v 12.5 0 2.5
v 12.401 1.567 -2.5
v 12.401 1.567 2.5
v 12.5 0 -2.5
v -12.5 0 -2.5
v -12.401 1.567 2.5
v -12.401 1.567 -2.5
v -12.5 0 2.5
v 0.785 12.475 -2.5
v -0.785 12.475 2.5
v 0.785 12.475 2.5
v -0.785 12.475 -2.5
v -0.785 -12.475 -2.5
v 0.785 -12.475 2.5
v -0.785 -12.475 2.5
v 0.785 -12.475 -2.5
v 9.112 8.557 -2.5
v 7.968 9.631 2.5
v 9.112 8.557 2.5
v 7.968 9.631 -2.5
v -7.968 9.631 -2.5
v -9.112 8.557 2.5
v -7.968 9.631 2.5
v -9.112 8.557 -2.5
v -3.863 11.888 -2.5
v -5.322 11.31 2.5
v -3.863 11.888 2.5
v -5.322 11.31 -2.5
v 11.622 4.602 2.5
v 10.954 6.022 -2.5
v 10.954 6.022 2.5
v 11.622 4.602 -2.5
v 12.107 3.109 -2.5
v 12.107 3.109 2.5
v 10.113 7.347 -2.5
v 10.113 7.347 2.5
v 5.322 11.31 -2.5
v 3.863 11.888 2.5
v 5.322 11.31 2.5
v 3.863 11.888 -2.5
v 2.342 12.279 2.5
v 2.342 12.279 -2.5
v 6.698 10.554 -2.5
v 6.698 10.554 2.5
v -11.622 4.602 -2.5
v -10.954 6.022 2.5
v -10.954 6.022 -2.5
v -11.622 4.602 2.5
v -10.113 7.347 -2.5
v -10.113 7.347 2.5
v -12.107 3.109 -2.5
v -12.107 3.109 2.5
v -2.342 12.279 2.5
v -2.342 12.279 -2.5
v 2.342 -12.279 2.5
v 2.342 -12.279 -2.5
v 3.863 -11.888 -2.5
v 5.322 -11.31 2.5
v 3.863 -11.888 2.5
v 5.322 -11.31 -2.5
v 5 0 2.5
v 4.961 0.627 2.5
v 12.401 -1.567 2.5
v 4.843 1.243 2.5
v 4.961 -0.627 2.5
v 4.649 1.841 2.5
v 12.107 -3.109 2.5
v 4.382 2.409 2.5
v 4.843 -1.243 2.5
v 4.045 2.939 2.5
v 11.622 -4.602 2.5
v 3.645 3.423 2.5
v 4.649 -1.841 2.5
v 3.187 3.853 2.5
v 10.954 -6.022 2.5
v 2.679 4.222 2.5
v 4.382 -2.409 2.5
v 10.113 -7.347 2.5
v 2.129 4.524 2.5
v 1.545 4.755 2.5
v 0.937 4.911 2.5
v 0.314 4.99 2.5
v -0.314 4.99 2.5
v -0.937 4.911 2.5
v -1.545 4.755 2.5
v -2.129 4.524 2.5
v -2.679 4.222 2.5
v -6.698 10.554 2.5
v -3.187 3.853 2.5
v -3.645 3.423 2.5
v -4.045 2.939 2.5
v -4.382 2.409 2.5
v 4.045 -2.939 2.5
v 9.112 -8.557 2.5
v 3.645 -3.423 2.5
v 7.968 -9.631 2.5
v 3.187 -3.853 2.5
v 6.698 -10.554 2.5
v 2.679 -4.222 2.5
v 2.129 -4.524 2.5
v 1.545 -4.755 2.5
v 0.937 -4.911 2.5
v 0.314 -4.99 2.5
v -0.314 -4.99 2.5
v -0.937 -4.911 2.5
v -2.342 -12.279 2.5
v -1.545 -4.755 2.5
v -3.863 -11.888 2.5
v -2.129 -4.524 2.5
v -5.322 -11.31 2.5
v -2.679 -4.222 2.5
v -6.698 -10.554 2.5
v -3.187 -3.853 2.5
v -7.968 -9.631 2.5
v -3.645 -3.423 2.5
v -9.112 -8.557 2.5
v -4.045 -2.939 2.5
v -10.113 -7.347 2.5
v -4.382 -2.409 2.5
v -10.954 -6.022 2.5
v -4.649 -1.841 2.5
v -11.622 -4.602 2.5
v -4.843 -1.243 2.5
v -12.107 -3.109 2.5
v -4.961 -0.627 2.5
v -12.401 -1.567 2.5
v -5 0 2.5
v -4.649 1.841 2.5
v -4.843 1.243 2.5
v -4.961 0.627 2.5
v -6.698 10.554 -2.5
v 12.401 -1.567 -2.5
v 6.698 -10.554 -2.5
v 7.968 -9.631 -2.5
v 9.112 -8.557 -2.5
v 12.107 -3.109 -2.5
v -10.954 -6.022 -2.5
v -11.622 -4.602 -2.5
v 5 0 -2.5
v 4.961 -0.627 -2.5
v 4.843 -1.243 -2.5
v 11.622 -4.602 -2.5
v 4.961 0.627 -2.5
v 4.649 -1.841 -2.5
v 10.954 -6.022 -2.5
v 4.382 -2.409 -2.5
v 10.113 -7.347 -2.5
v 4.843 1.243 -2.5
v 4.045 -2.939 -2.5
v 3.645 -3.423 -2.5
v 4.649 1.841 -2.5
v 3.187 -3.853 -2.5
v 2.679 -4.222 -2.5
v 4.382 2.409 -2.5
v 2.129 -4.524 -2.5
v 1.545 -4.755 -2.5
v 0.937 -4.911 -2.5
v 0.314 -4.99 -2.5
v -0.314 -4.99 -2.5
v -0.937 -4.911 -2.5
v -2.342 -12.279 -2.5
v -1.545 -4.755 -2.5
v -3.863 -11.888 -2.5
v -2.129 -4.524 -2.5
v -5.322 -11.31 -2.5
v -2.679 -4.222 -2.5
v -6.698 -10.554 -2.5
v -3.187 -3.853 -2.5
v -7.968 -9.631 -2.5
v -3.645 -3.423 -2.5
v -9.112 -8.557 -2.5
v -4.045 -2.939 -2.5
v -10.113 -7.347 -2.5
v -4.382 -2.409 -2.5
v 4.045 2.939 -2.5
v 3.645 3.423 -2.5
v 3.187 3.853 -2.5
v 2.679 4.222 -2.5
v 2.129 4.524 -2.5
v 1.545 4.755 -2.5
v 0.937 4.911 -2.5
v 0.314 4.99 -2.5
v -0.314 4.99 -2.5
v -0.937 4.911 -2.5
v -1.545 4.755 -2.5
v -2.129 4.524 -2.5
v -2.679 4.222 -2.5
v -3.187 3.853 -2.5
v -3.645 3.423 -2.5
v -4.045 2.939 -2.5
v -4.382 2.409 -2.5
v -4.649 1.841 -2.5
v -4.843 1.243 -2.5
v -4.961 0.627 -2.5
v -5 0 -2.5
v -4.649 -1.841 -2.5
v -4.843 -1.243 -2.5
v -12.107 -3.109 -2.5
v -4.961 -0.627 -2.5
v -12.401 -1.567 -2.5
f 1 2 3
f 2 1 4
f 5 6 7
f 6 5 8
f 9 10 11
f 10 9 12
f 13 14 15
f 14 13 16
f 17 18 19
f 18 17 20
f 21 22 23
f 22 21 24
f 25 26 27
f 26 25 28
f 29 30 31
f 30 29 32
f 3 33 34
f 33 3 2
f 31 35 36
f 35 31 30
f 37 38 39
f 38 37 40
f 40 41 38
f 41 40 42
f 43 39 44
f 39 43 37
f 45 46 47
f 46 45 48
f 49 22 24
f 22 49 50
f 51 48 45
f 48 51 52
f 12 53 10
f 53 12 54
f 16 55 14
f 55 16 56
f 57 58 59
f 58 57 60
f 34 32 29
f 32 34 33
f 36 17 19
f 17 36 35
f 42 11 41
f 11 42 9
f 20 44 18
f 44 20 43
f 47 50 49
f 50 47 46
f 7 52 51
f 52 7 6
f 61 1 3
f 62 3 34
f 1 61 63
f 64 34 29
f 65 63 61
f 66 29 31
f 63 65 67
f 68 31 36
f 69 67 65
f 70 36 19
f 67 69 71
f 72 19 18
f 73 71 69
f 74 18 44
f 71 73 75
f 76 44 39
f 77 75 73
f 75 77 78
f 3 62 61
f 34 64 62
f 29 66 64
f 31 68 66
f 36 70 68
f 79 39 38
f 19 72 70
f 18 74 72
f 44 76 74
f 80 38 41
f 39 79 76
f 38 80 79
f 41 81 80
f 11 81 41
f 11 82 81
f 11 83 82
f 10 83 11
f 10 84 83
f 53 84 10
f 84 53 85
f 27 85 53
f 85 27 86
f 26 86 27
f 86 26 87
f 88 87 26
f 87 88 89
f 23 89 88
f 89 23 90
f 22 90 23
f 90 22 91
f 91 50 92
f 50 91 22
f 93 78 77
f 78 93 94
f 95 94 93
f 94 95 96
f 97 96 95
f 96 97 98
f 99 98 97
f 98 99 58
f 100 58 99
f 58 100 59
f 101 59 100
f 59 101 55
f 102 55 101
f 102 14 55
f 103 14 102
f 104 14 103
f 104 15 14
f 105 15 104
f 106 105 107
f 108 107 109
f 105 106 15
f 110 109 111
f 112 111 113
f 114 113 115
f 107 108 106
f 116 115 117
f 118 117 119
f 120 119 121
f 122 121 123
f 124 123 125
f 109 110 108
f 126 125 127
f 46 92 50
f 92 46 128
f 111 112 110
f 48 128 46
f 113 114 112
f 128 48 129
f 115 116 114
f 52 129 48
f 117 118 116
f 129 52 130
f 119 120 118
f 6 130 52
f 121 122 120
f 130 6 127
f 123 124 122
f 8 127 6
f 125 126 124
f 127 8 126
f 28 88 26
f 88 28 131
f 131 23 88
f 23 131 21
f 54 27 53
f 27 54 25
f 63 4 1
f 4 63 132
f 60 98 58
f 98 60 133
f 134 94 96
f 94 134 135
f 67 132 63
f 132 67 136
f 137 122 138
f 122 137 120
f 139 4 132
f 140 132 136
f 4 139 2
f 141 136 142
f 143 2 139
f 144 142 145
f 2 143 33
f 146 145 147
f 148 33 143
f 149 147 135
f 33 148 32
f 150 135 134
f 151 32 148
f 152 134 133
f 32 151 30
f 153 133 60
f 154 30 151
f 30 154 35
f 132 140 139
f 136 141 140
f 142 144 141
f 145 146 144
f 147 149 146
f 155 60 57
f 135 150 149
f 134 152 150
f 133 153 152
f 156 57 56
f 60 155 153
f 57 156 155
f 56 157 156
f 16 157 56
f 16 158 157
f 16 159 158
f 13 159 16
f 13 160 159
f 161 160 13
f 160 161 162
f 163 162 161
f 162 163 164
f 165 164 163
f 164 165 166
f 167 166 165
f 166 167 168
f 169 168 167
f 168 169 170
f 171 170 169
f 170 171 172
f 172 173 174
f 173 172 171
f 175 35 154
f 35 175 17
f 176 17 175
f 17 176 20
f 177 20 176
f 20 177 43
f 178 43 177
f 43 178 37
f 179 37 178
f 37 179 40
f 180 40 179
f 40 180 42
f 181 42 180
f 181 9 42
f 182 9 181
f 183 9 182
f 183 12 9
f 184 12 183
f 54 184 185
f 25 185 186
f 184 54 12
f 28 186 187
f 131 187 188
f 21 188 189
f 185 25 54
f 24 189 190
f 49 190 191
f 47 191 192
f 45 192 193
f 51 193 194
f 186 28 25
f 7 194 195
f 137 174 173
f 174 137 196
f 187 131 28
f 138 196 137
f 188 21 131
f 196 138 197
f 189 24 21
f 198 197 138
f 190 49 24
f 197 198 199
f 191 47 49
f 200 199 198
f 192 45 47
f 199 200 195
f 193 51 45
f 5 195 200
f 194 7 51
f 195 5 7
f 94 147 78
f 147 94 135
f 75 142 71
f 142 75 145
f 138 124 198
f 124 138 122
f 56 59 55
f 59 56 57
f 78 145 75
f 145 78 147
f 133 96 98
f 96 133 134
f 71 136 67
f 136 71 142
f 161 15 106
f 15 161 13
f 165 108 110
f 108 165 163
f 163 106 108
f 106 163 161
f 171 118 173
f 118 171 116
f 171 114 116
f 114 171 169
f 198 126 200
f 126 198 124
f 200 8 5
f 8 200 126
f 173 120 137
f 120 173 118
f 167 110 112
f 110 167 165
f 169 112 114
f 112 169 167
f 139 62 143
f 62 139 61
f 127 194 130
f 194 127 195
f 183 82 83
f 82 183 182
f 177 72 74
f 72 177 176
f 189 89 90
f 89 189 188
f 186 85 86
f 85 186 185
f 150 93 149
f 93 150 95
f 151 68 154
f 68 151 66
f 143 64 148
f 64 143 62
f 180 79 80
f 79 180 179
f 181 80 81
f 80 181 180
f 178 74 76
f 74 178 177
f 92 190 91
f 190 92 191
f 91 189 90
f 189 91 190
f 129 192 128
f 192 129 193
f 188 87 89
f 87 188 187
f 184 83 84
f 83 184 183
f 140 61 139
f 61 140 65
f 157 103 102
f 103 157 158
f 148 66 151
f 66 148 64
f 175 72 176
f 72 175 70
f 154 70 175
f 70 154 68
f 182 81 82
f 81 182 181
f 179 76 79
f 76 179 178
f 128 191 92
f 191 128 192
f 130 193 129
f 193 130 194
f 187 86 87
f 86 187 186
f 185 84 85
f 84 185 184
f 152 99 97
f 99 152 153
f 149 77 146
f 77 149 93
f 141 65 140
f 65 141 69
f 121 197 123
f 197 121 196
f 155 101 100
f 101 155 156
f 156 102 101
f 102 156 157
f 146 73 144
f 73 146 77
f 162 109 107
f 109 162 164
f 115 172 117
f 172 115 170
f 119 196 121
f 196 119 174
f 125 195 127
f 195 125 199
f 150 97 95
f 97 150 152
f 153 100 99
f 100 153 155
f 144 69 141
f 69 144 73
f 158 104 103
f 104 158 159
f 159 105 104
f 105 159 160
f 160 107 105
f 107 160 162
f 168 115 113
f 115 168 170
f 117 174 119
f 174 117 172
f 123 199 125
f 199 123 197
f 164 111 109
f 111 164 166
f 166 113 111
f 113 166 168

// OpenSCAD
$fn = 50;


difference() {
	union() {
		translate(v = [0, 0, -2.5000000000]) {
			cylinder(h = 5, r = 12.5000000000);
		}
	}
	union() {
		translate(v = [0, 0, -100.0000000000]) {
			cylinder(h = 200, r = 5);
		}
	}
}
